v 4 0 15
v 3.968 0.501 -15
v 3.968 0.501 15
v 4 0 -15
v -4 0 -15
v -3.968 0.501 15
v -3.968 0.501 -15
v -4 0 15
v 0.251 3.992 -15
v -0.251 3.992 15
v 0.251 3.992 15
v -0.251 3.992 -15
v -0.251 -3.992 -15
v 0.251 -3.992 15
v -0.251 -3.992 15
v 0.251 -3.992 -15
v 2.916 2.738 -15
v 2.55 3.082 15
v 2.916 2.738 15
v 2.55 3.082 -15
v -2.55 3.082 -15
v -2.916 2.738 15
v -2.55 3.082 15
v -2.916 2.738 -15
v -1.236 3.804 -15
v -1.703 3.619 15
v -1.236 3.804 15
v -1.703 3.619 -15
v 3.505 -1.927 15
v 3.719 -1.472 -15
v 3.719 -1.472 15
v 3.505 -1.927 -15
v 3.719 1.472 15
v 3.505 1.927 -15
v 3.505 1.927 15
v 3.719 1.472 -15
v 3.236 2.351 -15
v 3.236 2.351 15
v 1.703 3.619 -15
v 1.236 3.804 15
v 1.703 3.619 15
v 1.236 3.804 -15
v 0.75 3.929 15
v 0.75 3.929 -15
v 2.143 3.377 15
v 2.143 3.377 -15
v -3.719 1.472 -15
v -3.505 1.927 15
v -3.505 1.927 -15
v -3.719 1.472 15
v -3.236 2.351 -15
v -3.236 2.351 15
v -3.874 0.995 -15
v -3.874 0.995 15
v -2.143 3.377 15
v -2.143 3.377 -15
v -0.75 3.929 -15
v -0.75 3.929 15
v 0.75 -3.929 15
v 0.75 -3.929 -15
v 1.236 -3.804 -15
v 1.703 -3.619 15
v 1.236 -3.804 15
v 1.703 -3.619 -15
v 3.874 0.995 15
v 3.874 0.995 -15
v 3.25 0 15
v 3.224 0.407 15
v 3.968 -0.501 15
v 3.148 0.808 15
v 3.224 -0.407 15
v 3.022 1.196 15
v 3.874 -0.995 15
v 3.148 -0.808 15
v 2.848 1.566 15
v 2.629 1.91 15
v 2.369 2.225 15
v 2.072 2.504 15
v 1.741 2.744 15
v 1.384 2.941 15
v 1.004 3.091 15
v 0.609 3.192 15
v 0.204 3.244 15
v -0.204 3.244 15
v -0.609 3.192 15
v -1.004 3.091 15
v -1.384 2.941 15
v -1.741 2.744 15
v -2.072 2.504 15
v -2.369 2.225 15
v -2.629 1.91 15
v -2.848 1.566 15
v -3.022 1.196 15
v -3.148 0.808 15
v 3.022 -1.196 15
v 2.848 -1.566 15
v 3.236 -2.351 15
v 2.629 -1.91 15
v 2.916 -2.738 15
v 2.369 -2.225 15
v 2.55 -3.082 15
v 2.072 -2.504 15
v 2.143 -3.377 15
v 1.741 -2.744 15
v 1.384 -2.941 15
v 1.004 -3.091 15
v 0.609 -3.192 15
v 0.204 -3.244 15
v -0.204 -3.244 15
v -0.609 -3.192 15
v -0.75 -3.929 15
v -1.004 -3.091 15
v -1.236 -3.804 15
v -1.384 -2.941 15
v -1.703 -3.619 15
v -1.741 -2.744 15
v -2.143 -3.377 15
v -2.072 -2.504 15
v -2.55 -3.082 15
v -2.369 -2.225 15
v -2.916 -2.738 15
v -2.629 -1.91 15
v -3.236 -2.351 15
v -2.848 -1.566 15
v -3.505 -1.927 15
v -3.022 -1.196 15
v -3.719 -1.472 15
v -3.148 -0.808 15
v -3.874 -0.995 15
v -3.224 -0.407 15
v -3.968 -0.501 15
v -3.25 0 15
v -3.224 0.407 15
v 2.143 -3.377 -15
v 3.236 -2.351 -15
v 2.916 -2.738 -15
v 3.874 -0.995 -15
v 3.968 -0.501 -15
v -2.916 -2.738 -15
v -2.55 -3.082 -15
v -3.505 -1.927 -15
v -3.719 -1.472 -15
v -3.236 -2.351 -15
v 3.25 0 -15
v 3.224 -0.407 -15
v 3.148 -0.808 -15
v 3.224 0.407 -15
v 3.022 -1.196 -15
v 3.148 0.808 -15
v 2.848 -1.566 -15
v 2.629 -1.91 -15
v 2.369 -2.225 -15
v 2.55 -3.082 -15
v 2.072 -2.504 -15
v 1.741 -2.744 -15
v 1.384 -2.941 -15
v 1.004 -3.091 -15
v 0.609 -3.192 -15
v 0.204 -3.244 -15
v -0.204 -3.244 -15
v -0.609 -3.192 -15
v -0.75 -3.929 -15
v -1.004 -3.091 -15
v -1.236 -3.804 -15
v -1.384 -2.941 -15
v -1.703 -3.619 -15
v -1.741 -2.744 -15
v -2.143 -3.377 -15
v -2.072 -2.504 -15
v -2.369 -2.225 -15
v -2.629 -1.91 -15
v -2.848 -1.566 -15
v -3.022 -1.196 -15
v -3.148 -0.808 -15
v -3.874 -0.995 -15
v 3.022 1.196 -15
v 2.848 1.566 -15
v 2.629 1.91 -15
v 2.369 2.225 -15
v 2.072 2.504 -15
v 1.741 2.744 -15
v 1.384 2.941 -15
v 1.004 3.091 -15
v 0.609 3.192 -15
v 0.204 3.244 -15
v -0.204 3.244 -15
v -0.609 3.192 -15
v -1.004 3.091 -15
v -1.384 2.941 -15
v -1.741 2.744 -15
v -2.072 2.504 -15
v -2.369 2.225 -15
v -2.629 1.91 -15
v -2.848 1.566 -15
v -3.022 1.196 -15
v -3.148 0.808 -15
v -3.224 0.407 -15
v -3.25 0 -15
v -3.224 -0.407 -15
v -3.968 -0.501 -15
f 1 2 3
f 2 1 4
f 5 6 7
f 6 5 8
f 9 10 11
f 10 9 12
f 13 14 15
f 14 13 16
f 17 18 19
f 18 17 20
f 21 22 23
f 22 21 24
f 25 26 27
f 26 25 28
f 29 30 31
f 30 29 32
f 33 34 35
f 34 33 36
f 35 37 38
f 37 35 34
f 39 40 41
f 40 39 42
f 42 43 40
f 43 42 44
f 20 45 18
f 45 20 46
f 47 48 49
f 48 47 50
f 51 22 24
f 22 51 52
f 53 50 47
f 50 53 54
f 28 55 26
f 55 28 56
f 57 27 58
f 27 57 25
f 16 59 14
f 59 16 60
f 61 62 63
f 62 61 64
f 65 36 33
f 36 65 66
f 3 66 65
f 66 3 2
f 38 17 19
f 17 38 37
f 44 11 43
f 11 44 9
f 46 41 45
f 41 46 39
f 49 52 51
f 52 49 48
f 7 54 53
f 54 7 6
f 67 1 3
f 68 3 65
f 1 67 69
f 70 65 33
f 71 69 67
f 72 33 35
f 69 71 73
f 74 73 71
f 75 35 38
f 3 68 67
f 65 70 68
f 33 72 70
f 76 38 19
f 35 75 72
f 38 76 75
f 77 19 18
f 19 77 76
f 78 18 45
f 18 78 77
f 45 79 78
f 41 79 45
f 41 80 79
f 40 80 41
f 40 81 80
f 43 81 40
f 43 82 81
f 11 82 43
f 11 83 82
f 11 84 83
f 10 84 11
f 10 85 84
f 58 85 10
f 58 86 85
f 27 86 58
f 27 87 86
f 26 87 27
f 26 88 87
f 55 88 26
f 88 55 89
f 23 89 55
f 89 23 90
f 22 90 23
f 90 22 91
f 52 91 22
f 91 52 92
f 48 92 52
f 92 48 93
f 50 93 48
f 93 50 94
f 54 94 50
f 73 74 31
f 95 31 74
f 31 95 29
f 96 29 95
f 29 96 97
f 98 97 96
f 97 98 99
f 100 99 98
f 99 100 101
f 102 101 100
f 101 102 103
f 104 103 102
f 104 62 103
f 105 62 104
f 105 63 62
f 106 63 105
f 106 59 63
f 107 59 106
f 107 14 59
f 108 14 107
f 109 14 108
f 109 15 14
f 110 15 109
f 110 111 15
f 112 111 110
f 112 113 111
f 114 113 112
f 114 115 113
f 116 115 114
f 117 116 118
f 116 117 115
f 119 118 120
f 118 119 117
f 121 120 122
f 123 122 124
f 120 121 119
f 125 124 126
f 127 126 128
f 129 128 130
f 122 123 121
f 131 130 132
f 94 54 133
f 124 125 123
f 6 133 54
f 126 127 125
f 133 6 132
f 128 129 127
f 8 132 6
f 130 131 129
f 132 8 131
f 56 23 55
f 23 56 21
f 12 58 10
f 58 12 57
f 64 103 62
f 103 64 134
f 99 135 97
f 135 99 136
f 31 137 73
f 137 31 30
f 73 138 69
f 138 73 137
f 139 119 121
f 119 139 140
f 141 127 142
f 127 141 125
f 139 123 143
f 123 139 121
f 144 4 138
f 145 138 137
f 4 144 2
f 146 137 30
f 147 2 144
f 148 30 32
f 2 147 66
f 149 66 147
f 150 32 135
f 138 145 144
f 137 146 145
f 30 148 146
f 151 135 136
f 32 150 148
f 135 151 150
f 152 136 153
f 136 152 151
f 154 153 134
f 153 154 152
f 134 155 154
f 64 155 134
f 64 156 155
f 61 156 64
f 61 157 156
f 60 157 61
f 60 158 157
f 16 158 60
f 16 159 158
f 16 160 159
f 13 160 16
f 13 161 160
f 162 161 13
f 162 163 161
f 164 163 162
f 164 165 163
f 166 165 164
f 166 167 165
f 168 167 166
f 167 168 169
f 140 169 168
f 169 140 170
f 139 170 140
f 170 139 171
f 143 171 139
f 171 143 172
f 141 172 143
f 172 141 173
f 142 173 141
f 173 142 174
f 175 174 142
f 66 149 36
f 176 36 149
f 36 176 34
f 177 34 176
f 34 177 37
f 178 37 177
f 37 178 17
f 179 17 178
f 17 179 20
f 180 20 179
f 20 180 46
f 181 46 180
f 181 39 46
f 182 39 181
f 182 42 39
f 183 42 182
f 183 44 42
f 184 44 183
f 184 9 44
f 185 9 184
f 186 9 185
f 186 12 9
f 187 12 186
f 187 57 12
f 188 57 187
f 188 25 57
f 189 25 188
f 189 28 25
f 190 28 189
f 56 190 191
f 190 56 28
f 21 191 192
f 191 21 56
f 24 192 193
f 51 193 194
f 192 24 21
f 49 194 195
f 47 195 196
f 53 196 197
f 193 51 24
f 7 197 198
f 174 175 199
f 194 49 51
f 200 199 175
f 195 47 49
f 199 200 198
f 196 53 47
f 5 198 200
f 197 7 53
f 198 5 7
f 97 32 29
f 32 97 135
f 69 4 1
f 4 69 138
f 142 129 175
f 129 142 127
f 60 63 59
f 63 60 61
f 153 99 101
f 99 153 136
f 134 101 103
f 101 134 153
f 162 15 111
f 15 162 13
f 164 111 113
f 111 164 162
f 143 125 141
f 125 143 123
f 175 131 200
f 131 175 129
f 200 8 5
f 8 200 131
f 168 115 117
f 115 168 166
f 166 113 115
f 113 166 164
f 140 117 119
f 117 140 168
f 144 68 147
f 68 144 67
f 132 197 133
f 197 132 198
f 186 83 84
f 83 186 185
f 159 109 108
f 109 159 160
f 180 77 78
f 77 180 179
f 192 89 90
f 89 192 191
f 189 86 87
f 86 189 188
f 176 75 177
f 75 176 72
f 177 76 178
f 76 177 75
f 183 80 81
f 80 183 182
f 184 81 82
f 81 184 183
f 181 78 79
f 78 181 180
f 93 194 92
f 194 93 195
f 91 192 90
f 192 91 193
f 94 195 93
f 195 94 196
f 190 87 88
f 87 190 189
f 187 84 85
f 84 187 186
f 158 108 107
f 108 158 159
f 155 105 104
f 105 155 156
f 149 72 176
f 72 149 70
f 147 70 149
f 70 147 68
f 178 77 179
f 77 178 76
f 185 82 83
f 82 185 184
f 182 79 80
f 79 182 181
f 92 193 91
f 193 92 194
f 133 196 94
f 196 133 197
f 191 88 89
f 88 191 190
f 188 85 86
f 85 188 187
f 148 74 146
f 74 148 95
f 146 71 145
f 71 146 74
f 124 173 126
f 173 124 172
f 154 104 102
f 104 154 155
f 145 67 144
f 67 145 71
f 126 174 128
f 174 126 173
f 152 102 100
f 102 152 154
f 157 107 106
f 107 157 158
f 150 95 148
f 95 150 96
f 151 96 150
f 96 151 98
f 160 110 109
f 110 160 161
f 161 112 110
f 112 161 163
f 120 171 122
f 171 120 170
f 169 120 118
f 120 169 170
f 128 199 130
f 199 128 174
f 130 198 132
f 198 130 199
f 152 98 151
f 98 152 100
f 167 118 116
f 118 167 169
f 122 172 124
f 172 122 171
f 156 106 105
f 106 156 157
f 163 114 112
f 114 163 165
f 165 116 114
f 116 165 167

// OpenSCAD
$fn = 50;


difference() {
	union() {
		translate(v = [0, 0, -15.0000000000]) {
			cylinder(h = 30, r = 4.0000000000);
		}
	}
	union() {
		translate(v = [0, 0, -100.0000000000]) {
			cylinder(h = 200, r = 3.2500000000);
		}
	}
}
